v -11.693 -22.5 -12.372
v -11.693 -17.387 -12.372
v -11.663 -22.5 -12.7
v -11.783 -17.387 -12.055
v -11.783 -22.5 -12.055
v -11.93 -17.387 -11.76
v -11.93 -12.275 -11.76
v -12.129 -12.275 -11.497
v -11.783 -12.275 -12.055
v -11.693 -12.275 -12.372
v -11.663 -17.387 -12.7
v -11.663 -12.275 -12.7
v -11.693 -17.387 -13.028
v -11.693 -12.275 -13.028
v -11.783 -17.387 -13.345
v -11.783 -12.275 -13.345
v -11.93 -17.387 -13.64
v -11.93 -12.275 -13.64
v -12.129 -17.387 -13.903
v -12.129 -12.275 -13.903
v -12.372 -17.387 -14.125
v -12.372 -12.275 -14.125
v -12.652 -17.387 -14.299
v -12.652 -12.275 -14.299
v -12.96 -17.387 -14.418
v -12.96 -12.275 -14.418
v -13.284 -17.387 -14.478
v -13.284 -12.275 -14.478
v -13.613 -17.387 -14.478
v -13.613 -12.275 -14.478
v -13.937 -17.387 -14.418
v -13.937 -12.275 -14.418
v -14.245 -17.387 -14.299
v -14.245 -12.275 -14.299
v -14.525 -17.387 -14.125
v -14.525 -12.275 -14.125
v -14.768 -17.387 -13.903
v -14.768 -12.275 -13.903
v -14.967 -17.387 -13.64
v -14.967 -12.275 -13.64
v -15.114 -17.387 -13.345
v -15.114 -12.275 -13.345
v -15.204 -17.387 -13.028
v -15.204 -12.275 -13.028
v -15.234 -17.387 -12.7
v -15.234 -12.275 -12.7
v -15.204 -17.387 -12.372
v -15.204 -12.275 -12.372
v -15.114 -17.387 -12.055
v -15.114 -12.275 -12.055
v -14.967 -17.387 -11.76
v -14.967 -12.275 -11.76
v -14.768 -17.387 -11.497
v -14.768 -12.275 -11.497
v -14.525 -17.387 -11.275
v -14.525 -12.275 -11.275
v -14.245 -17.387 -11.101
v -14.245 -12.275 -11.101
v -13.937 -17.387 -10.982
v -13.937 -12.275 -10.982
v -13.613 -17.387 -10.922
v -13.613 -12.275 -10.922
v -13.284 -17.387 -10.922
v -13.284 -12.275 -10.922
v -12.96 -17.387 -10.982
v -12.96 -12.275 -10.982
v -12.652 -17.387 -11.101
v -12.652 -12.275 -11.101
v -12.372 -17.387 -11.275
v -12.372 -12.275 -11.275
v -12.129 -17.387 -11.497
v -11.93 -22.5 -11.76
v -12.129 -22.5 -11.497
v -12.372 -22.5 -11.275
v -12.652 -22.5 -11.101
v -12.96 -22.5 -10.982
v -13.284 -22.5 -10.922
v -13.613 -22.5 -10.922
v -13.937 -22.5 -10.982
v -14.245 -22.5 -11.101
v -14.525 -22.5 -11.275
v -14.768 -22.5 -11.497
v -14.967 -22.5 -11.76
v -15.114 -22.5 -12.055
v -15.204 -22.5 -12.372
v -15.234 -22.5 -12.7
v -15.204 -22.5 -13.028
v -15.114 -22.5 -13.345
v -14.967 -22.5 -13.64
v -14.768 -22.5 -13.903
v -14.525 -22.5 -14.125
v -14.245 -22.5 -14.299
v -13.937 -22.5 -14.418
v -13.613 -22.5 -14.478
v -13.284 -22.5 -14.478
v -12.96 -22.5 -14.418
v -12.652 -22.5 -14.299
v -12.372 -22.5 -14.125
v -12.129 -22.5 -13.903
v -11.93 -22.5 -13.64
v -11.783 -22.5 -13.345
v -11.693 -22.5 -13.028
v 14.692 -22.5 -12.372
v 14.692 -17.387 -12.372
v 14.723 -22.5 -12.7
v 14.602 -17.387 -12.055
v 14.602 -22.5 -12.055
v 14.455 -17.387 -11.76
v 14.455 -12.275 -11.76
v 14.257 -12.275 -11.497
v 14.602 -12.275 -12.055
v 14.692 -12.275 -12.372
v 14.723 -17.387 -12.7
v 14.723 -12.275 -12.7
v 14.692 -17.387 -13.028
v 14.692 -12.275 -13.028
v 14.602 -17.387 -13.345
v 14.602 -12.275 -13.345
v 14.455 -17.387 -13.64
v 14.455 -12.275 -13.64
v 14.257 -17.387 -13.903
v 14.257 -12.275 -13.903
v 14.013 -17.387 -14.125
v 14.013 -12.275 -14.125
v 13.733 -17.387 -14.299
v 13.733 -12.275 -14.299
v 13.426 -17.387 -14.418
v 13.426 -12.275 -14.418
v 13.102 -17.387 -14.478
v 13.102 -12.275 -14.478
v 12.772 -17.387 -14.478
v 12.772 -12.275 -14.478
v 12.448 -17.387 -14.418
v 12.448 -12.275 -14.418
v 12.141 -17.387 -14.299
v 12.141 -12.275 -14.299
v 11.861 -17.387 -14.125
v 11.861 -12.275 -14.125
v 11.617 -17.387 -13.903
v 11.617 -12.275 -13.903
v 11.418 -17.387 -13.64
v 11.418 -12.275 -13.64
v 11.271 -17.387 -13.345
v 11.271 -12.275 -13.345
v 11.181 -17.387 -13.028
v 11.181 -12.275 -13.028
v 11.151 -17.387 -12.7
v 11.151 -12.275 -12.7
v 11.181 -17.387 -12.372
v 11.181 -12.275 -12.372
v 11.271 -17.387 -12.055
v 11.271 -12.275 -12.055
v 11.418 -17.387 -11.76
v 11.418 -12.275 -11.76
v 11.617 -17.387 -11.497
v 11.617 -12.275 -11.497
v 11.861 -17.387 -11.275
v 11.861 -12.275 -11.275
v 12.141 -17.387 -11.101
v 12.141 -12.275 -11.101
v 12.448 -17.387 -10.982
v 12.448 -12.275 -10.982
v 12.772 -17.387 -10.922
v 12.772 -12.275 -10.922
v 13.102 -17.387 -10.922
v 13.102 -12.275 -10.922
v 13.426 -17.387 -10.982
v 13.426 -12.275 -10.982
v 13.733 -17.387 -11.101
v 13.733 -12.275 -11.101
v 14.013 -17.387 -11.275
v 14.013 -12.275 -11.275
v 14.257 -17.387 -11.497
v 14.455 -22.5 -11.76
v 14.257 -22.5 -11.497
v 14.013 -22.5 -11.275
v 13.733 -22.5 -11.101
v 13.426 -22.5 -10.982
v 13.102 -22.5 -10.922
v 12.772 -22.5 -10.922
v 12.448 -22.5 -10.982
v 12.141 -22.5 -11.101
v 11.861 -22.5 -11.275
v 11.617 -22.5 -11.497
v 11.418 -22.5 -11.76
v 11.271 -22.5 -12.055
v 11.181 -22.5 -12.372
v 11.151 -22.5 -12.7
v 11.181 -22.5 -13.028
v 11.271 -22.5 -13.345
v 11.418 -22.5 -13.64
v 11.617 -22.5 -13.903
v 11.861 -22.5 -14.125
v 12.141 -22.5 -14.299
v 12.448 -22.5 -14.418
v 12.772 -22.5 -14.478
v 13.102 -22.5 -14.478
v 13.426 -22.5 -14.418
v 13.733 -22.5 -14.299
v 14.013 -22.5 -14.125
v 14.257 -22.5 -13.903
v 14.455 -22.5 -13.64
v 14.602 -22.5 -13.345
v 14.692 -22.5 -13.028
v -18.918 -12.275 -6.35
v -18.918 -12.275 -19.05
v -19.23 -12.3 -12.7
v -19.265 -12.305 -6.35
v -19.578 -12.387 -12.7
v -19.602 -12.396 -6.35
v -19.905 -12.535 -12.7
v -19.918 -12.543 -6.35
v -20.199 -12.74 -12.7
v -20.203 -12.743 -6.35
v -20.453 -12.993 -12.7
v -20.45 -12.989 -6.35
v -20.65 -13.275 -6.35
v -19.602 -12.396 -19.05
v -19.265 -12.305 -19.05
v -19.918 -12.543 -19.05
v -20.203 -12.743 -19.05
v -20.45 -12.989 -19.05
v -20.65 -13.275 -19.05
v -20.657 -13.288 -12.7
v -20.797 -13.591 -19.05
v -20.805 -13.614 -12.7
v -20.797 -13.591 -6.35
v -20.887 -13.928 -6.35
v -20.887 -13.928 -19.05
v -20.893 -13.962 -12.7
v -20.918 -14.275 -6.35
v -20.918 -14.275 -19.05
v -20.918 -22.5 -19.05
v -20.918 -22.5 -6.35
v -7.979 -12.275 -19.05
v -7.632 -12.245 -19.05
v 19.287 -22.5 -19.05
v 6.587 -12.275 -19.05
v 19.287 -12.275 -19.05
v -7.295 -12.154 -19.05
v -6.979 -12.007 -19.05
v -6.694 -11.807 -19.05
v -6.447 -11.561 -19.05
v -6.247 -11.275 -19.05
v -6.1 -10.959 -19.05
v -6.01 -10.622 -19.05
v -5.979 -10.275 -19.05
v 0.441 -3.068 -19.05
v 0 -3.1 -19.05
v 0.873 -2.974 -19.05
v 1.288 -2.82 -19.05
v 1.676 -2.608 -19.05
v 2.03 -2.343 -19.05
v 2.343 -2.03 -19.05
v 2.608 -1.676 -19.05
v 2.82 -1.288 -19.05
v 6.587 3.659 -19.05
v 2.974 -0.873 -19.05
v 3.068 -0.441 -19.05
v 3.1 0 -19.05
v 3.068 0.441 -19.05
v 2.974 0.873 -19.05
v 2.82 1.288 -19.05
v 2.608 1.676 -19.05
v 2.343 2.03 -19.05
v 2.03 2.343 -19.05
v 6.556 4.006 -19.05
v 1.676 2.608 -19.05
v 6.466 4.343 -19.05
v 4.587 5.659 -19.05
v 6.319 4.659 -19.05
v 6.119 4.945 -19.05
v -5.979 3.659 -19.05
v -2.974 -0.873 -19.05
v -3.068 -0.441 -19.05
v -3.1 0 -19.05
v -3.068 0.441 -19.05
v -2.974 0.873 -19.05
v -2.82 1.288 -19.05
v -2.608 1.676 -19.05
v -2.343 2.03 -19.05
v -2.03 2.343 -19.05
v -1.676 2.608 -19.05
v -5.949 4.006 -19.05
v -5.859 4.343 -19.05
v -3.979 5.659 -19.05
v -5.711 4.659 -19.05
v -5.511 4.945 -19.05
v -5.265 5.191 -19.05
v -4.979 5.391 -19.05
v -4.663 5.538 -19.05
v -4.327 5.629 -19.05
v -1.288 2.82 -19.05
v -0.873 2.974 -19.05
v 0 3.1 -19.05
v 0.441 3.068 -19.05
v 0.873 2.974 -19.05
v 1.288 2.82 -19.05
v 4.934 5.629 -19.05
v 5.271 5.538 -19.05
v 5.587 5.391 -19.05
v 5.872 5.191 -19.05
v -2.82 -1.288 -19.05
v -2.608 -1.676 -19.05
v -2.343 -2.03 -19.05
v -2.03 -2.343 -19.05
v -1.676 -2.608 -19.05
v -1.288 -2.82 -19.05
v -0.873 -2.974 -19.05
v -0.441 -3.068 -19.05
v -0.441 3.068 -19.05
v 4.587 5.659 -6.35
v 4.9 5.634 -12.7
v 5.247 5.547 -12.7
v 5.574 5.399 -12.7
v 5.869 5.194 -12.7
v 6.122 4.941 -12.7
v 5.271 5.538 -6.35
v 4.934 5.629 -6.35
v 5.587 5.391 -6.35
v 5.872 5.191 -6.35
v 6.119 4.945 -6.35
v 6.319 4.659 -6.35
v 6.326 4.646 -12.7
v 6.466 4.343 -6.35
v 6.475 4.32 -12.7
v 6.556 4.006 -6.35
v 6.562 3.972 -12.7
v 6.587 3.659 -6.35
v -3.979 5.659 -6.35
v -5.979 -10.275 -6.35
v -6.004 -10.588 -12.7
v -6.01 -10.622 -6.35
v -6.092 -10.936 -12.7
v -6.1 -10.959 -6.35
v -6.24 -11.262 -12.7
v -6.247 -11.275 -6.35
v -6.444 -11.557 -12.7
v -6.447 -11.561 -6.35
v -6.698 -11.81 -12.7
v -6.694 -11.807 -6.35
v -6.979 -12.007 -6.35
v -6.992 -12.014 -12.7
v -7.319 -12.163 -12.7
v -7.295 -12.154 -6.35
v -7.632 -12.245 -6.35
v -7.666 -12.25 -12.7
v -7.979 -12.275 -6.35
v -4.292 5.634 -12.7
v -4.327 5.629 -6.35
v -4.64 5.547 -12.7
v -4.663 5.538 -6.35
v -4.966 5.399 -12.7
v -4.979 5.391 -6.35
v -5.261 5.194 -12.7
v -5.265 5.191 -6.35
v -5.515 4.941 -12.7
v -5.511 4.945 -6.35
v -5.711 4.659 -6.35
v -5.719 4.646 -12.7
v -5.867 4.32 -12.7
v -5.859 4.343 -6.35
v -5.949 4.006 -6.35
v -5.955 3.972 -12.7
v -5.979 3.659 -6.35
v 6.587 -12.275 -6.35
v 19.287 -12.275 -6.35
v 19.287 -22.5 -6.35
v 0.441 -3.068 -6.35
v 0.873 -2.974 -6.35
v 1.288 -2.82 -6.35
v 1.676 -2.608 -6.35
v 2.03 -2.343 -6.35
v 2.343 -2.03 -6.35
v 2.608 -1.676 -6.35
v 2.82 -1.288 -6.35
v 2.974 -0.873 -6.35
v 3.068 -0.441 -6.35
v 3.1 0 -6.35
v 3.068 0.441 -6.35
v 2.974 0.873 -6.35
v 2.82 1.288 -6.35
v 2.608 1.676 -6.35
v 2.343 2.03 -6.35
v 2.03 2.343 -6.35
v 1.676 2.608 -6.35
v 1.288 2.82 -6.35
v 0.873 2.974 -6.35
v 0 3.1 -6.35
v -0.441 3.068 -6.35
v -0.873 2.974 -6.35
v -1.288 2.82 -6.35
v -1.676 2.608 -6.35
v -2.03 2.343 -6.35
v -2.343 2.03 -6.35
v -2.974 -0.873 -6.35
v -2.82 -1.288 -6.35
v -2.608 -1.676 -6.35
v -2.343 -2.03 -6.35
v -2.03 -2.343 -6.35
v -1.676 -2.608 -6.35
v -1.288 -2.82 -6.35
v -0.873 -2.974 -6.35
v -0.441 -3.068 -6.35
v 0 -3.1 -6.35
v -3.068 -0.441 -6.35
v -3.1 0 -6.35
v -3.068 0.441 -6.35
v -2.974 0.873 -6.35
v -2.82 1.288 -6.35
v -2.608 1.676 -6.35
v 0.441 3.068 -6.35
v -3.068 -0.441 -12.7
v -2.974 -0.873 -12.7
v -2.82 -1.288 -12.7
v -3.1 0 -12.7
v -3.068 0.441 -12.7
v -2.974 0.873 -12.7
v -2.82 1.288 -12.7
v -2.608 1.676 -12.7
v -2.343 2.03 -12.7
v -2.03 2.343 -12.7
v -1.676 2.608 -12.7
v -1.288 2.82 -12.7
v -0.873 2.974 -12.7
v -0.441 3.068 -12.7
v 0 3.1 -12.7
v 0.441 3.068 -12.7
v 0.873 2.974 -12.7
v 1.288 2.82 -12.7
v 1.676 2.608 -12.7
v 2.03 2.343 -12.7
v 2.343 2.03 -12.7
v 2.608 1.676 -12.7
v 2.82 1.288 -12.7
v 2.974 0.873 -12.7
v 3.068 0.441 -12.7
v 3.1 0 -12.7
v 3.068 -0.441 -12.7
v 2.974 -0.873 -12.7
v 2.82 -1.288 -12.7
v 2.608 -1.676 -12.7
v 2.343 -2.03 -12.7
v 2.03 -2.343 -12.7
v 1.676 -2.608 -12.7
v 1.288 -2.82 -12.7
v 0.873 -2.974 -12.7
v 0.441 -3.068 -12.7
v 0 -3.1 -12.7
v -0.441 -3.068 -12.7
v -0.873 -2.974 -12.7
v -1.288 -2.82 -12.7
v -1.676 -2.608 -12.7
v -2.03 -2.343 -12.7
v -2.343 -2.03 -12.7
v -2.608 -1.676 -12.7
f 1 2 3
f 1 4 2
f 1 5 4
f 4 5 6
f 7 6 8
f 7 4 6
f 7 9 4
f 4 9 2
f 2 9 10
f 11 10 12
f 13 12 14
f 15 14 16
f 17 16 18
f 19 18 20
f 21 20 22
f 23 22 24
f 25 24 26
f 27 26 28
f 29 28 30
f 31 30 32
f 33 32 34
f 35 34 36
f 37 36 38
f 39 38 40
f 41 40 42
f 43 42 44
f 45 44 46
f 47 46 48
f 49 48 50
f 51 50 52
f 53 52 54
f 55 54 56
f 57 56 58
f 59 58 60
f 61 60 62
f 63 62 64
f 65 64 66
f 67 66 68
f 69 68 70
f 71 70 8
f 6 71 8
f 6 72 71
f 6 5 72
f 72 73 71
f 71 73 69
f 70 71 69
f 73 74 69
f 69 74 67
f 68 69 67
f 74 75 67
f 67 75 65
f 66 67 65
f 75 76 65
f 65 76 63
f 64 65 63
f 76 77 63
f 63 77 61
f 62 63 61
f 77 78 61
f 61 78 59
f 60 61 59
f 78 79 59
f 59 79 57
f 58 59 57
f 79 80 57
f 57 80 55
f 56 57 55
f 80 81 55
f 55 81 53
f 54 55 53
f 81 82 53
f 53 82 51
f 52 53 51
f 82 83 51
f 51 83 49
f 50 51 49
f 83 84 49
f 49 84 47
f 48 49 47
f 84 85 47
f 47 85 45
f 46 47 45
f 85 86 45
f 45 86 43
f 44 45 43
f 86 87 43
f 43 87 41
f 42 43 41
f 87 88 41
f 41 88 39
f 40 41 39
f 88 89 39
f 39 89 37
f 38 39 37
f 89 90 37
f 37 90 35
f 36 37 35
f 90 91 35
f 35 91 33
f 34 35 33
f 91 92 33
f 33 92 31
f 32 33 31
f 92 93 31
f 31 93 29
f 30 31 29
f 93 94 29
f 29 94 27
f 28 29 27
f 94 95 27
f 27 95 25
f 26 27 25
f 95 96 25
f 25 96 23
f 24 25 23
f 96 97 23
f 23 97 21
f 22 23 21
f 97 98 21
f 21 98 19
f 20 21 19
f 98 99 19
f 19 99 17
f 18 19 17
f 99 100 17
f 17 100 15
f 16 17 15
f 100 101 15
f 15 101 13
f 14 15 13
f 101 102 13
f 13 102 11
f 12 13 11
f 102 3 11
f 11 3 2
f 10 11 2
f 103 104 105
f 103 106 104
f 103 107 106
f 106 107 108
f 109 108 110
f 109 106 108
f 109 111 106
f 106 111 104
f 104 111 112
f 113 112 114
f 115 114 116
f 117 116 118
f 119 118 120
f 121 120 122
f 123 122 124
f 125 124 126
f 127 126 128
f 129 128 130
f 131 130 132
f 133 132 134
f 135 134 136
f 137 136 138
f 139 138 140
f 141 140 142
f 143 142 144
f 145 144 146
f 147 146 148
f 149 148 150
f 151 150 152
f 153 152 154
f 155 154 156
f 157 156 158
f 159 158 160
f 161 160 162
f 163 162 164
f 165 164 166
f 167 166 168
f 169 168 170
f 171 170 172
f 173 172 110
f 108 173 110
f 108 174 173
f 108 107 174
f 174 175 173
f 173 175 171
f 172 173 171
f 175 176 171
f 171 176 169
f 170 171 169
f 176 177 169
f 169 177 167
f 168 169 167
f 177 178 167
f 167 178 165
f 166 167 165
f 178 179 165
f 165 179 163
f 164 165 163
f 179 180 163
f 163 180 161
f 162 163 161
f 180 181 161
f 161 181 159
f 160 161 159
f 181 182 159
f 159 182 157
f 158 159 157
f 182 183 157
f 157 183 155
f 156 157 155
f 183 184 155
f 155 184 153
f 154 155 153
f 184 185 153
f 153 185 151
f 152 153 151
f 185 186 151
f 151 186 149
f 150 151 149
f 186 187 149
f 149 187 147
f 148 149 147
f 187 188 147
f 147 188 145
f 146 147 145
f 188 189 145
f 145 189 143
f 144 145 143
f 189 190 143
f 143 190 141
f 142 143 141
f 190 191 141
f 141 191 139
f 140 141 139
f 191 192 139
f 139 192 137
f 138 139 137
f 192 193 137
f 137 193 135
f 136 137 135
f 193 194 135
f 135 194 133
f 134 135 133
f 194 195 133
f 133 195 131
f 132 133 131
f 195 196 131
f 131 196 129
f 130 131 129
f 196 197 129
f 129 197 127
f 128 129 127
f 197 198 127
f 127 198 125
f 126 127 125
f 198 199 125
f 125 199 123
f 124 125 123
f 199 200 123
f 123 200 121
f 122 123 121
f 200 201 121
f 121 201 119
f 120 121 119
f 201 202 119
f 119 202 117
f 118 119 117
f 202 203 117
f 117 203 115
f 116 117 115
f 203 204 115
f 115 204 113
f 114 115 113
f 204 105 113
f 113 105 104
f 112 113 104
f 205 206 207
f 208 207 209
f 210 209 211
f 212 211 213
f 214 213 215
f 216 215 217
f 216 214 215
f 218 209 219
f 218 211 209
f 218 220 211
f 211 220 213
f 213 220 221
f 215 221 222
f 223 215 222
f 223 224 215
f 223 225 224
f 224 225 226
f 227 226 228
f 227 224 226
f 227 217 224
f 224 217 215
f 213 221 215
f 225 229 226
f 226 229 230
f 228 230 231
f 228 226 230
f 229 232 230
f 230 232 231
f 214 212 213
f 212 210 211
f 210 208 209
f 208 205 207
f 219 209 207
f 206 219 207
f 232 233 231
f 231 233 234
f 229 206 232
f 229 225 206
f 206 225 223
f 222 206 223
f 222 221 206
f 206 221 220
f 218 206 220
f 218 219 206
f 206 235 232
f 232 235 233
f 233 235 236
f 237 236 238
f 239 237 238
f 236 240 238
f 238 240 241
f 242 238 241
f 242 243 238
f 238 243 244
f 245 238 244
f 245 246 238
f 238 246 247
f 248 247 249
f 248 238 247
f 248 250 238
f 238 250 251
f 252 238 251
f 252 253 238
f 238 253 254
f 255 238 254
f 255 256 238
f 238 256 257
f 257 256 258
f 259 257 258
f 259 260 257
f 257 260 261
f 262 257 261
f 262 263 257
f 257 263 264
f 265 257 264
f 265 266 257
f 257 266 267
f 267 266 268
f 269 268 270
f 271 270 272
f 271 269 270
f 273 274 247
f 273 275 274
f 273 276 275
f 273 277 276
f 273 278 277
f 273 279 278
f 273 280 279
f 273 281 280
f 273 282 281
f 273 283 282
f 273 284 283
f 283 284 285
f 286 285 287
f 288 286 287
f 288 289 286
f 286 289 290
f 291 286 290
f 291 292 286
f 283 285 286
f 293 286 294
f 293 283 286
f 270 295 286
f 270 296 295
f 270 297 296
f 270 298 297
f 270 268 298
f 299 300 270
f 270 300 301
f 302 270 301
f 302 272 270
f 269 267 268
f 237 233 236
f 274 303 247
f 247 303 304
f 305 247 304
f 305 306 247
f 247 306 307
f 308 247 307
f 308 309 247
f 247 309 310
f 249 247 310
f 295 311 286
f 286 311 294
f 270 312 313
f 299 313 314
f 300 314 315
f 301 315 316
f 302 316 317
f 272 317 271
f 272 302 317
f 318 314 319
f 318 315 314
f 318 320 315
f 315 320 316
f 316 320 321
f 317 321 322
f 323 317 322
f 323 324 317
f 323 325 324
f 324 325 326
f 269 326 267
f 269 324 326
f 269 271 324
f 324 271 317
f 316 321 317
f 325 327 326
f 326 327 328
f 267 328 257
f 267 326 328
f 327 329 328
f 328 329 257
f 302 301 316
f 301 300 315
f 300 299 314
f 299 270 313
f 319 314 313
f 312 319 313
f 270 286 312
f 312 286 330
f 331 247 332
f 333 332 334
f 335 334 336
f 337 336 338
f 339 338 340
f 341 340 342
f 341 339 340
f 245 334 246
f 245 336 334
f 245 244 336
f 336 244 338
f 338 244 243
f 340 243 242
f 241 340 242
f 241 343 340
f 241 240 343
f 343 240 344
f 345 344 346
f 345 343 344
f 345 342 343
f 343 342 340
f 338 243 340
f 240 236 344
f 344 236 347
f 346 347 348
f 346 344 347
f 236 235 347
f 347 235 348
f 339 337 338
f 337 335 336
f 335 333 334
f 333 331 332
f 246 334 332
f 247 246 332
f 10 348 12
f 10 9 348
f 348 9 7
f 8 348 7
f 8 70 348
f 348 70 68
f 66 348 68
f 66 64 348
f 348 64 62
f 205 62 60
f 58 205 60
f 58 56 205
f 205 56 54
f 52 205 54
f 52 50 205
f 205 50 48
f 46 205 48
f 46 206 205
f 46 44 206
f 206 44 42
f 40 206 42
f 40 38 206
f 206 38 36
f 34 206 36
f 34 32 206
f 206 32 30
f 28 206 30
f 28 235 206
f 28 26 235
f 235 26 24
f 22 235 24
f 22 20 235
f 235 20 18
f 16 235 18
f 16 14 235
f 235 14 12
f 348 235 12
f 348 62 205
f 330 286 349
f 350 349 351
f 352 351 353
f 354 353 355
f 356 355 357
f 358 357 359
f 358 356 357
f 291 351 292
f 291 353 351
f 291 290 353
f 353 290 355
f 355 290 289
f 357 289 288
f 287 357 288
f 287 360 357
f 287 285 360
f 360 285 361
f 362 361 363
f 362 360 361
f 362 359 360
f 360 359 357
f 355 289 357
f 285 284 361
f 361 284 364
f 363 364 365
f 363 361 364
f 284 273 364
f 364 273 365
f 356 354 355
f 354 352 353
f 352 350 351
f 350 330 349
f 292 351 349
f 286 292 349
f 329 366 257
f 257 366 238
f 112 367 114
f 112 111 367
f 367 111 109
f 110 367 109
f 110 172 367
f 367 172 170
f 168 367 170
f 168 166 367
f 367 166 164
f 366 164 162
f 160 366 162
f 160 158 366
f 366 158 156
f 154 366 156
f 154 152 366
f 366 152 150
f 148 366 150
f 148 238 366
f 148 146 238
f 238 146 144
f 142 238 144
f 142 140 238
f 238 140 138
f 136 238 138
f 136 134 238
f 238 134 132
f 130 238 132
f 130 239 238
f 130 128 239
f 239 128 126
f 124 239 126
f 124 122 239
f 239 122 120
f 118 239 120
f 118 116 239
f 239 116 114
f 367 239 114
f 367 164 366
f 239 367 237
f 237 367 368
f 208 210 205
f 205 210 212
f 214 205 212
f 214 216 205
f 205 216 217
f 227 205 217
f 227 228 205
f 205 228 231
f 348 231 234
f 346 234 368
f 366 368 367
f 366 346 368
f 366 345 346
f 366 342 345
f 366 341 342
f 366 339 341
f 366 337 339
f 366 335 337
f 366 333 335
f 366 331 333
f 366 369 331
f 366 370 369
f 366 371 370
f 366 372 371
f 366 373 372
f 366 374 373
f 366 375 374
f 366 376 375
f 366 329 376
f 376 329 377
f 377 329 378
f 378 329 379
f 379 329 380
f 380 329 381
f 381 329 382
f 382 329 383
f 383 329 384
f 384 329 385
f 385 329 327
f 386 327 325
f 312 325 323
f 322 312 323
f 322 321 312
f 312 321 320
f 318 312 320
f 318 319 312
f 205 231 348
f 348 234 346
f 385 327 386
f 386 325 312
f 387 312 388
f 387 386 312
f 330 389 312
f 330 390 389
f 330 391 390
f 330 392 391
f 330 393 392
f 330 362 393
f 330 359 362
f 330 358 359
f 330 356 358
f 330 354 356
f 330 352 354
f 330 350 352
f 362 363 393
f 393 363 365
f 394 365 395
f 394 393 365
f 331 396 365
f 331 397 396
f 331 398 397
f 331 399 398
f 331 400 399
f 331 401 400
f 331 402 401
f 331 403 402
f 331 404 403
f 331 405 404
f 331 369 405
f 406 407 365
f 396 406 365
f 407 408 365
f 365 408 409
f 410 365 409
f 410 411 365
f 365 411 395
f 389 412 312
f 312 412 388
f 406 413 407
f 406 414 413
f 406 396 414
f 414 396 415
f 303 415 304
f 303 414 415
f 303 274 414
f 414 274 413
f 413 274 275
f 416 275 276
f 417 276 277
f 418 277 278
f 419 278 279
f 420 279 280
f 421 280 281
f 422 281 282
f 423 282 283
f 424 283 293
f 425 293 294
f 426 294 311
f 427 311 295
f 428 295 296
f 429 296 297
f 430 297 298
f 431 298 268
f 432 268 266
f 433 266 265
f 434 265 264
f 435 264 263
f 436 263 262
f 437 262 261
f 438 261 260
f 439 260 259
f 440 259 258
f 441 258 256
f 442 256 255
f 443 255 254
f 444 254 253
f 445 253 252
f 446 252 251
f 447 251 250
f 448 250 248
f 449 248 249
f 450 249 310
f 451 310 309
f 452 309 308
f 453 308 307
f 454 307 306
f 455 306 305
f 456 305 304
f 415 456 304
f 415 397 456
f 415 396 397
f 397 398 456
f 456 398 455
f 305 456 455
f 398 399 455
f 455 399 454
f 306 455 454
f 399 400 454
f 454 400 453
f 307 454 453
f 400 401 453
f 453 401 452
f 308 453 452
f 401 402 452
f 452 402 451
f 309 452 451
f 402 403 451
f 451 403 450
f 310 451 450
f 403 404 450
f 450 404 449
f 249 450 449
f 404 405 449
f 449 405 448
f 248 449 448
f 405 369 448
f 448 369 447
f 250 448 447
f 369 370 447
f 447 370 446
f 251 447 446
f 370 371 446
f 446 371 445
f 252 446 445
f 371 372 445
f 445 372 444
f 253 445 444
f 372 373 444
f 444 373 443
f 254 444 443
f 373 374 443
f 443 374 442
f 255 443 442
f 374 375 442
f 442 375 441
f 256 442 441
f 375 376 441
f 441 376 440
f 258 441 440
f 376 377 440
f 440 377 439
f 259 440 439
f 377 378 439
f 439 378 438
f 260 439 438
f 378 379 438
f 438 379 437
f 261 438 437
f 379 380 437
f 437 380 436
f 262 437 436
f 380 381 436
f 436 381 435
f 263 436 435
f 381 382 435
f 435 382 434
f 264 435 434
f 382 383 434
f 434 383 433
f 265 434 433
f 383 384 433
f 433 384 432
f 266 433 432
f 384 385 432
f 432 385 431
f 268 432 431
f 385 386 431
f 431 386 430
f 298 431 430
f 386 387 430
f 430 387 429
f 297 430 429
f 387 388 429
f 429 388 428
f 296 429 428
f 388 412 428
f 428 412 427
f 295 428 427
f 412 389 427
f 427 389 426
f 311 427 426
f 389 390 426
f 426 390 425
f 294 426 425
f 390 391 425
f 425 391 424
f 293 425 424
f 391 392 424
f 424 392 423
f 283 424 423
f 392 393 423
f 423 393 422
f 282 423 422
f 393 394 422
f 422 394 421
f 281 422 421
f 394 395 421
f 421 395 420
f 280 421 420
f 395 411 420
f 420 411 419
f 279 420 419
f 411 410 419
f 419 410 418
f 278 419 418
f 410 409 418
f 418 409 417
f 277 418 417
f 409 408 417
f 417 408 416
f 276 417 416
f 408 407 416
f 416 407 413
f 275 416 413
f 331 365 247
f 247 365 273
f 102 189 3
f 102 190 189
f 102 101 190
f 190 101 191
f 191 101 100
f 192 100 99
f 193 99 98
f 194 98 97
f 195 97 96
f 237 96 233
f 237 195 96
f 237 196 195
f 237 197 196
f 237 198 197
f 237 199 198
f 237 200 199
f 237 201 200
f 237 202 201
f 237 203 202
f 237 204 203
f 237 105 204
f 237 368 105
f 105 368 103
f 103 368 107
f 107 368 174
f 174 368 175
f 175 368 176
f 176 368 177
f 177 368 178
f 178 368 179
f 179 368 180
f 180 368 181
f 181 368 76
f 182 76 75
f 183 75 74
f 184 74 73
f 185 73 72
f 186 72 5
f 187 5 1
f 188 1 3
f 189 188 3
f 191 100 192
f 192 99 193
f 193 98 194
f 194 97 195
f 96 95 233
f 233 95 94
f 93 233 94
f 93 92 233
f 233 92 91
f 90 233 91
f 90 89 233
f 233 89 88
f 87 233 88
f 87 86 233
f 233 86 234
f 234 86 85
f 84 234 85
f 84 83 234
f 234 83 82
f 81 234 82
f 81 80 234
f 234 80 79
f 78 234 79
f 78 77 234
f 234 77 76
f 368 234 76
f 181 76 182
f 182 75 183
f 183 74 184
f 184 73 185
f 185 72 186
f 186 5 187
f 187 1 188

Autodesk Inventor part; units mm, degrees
ref_plane "FRONT" through (0, 0, 0) normal (0, 0, 1) x (1, 0, 0)
ref_plane "TOP" through (0, 0, 0) normal (0, 1, 0) x (-1, 0, 0)
ref_plane "RIGHT" through (0, 0, 0) normal (1, 0, 0) x (0, 1, 0)
ref_plane "Work Plane6" through (36, -22.5, -6.35) normal (0, 0, -1) x (-1, 0, 0)
sketch "Sketch1" plane through (36, -22.5, -6.35) normal (0, 0, -1) x (-1, 0, 0)
  line L0 (56.9176, 0) -> (29.4132, 0)
  line L1 (56.9176, 0) -> (29.4132, 0)
  line L2 (29.4132, 0) -> (29.4132, 32.1053)
  line L3 (41.9794, 32.1053) -> (41.9794, 16.7597)
  line L4 (29.4132, 32.1053) -> (41.9794, 32.1053)
  line L5 (41.9794, 16.7597) -> (56.9176, 16.7597)
  line L6 (56.9176, 16.7597) -> (56.9176, 0)
  point P0 (36, 22.5)
  point P1 (0, 0)
extrude "Extrusion1" add sketch "Sketch1" along normal blind 12.7
ref_plane "Work Plane5" through (36, -22.5, -19.05) normal (0, 0, -1) x (-1, 0, 0)
sketch "Sketch2" plane through (36, -22.5, -19.05) normal (0, 0, -1) x (-1, 0, 0)
  circle A0 centre (36, 22.5) radius 3.1
  dimension "d2" = 6.2
extrude "Extrusion2" cut sketch "Sketch2" against normal through all
ref_plane "Work Plane8" through (6.5868, -22.5, -6.35) normal (1, 0, 0) x (0, 0, -1)
sketch "Sketch3" plane through (6.5868, -22.5, -6.35) normal (1, 0, 0) x (0, 0, -1)
  line L0 (0, 32.1053) -> (0, 0) projected
  line L1 (0, 13.4651) -> (12.7, 13.4651)
  line L2 (12.7, 13.4651) -> (12.7, 0)
  line L3 (12.7, 0) -> (0, 0)
  line L4 (0, 0) -> (0, 13.4651)
  point P0 (-6.35, 22.5)
  point P1 (0, 26.9303)
extrude "Extrusion3" add sketch "Sketch3" along normal blind 12.7
sketch "Sketch4" plane through (36, -22.5, -19.05) normal (0, 0, -1) x (-1, 0, 0)
  circle A0 centre (36, 22.5) radius 3.1 projected
  line L0 (29.4132, 32.1053) -> (29.4132, 13.4651) projected
  line L1 (56.9176, 0) -> (16.7132, 0) projected
  line L2 (56.9176, 0) -> (56.9176, 16.7597) projected
  line L3 (56.9176, 16.7597) -> (41.9794, 16.7597) projected
  line L4 (41.9794, 16.7597) -> (41.9794, 32.1053) projected
  line L5 (41.9794, 32.1053) -> (29.4132, 32.1053) projected
  line L6 (16.7132, 0) -> (16.7132, 13.4651) projected
  line L7 (16.7132, 10.2251) -> (56.9176, 10.2251)
  line L8 (56.9176, 0) -> (56.9176, 16.7597) projected
  line L9 (41.9794, 16.7597) -> (41.9794, 10.2251)
  line L10 (29.4132, 13.4651) -> (29.4132, 10.2251)
  line L11 (29.4132, 13.4651) -> (16.7132, 13.4651)
  line L12 (16.7132, 13.4651) -> (16.7132, 10.2251)
  line L13 (41.9794, 16.7597) -> (56.9176, 16.7597)
  line L14 (56.9176, 16.7597) -> (56.9176, 10.2251)
  line L15 (29.4132, 13.4651) -> (16.7132, 13.4651)
  line L16 (16.7132, 13.4651) -> (16.7132, 10.2251)
  line L17 (16.7132, 10.2251) -> (29.4132, 10.2251)
  line L18 (29.4132, 10.2251) -> (29.4132, 13.4651)
  line L19 (41.9794, 16.7597) -> (56.9176, 16.7597)
  line L20 (56.9176, 16.7597) -> (56.9176, 10.2251)
  line L21 (56.9176, 10.2251) -> (41.9794, 10.2251)
  line L22 (41.9794, 10.2251) -> (41.9794, 16.7597)
  line L23 (29.4132, 13.4651) -> (16.7132, 13.4651) projected
  line L24 (16.7132, 0) -> (16.7132, 13.4651) projected
extrude "Extrusion4" cut sketch "Sketch4" against normal through all contours L10 L7 L6 L11 | L3 L2 L7 L9
sketch "Sketch5" plane through (36, -22.5, -19.05) normal (0, 0, -1) x (-1, 0, 0)
  line L0 (56.9176, 0) -> (16.7132, 0) projected
  line L1 (56.9176, 0) -> (56.9176, 10.2251) projected
  line L2 (56.9176, 10.2251) -> (41.9794, 10.2251) projected
  line L3 (41.9794, 10.2251) -> (41.9794, 32.1053) projected
  line L4 (41.9794, 32.1053) -> (29.4132, 32.1053) projected
  line L5 (29.4132, 32.1053) -> (29.4132, 10.2251) projected
  circle A0 centre (36, 22.5) radius 3.1 projected
  line L6 (29.4132, 32.1053) -> (29.4132, 10.2251) projected
  line L7 (29.4132, 28.1591) -> (41.9794, 28.1591)
  line L8 (41.9794, 28.1591) -> (41.9794, 32.1053)
  line L9 (41.9794, 32.1053) -> (29.4132, 32.1053)
  line L10 (29.4132, 32.1053) -> (29.4132, 28.1591)
  line L11 (29.4132, 10.2251) -> (16.7132, 10.2251) projected
  line L12 (16.7132, 0) -> (16.7132, 10.2251) projected
extrude "Extrusion5" cut sketch "Sketch5" against normal through all contours L7 L5 L4 L3
fillet "Fillet4" radius 2 4 edges at (-5.9794, 5.6591, -12.7) (-5.9794, -12.2749, -12.7) (6.5868, 5.6591, -12.7) (-20.9176, -12.2749, -12.7)
ref_plane "Work Plane9" through (8.5868, -12.2749, -19.05) normal (0, 1, 0) x (1, 0, 0)
sketch "Sketch6" plane through (8.5868, -12.2749, -19.05) normal (0, 1, 0) x (1, 0, 0)
  line L0 (-2, 0) -> (10.7, 0) projected
  line L1 (10.7, -12.7) -> (-2, -12.7) projected
  line L2 (8.7, -6.35) -> (0, -6.35) construction
  line L3 (0, -12.7) -> (0, 0) construction
  line L4 (-29.5044, 0) -> (10.7, 0) construction
  line L5 (4.35, 0) -> (4.35, -12.7) construction
  line L6 (-29.5044, -12.7) -> (10.7, -12.7) construction
  circle A0 centre (4.35, -6.35) radius 1.7859
  line L7 (10.7, 0) -> (10.7, -12.7) projected
  line L8 (-2, 0) -> (-2, -12.7) projected
  point P0 (-8.5868, -19.05)
  point P1 (8.7, -12.7)
  point P2 (8.7, 0)
  dimension "d18" = 3.5719
extrude "Extrusion6" cut sketch "Sketch6" against normal through all contours A0
sketch "Sketch7" plane through (-18.9176, -12.2749, -19.05) normal (0, 1, 0) x (1, 0, 0)
  line L0 (0, -12.7) -> (0, 0) projected
  line L1 (10.9382, -12.7) -> (0, -12.7) projected
  line L2 (10.9382, 0) -> (10.9382, -12.7) projected
  line L3 (0, 0) -> (10.9382, 0) projected
  line L4 (5.4691, -12.7) -> (5.4691, 0) construction
  line L5 (-2, 0) -> (38.2044, 0) construction
  line L6 (10.9382, 0) -> (10.9382, -12.7) construction
  line L7 (10.9382, -6.35) -> (0, -6.35) construction
  circle A0 centre (5.4691, -6.35) radius 1.7859
  point P0 (18.9176, -19.05)
  point P1 (25.5044, 0)
  dimension "d21" = 3.5719
extrude "Extrusion7" cut sketch "Sketch7" against normal through all contours A0
properties part number "other side roller axle holder"
